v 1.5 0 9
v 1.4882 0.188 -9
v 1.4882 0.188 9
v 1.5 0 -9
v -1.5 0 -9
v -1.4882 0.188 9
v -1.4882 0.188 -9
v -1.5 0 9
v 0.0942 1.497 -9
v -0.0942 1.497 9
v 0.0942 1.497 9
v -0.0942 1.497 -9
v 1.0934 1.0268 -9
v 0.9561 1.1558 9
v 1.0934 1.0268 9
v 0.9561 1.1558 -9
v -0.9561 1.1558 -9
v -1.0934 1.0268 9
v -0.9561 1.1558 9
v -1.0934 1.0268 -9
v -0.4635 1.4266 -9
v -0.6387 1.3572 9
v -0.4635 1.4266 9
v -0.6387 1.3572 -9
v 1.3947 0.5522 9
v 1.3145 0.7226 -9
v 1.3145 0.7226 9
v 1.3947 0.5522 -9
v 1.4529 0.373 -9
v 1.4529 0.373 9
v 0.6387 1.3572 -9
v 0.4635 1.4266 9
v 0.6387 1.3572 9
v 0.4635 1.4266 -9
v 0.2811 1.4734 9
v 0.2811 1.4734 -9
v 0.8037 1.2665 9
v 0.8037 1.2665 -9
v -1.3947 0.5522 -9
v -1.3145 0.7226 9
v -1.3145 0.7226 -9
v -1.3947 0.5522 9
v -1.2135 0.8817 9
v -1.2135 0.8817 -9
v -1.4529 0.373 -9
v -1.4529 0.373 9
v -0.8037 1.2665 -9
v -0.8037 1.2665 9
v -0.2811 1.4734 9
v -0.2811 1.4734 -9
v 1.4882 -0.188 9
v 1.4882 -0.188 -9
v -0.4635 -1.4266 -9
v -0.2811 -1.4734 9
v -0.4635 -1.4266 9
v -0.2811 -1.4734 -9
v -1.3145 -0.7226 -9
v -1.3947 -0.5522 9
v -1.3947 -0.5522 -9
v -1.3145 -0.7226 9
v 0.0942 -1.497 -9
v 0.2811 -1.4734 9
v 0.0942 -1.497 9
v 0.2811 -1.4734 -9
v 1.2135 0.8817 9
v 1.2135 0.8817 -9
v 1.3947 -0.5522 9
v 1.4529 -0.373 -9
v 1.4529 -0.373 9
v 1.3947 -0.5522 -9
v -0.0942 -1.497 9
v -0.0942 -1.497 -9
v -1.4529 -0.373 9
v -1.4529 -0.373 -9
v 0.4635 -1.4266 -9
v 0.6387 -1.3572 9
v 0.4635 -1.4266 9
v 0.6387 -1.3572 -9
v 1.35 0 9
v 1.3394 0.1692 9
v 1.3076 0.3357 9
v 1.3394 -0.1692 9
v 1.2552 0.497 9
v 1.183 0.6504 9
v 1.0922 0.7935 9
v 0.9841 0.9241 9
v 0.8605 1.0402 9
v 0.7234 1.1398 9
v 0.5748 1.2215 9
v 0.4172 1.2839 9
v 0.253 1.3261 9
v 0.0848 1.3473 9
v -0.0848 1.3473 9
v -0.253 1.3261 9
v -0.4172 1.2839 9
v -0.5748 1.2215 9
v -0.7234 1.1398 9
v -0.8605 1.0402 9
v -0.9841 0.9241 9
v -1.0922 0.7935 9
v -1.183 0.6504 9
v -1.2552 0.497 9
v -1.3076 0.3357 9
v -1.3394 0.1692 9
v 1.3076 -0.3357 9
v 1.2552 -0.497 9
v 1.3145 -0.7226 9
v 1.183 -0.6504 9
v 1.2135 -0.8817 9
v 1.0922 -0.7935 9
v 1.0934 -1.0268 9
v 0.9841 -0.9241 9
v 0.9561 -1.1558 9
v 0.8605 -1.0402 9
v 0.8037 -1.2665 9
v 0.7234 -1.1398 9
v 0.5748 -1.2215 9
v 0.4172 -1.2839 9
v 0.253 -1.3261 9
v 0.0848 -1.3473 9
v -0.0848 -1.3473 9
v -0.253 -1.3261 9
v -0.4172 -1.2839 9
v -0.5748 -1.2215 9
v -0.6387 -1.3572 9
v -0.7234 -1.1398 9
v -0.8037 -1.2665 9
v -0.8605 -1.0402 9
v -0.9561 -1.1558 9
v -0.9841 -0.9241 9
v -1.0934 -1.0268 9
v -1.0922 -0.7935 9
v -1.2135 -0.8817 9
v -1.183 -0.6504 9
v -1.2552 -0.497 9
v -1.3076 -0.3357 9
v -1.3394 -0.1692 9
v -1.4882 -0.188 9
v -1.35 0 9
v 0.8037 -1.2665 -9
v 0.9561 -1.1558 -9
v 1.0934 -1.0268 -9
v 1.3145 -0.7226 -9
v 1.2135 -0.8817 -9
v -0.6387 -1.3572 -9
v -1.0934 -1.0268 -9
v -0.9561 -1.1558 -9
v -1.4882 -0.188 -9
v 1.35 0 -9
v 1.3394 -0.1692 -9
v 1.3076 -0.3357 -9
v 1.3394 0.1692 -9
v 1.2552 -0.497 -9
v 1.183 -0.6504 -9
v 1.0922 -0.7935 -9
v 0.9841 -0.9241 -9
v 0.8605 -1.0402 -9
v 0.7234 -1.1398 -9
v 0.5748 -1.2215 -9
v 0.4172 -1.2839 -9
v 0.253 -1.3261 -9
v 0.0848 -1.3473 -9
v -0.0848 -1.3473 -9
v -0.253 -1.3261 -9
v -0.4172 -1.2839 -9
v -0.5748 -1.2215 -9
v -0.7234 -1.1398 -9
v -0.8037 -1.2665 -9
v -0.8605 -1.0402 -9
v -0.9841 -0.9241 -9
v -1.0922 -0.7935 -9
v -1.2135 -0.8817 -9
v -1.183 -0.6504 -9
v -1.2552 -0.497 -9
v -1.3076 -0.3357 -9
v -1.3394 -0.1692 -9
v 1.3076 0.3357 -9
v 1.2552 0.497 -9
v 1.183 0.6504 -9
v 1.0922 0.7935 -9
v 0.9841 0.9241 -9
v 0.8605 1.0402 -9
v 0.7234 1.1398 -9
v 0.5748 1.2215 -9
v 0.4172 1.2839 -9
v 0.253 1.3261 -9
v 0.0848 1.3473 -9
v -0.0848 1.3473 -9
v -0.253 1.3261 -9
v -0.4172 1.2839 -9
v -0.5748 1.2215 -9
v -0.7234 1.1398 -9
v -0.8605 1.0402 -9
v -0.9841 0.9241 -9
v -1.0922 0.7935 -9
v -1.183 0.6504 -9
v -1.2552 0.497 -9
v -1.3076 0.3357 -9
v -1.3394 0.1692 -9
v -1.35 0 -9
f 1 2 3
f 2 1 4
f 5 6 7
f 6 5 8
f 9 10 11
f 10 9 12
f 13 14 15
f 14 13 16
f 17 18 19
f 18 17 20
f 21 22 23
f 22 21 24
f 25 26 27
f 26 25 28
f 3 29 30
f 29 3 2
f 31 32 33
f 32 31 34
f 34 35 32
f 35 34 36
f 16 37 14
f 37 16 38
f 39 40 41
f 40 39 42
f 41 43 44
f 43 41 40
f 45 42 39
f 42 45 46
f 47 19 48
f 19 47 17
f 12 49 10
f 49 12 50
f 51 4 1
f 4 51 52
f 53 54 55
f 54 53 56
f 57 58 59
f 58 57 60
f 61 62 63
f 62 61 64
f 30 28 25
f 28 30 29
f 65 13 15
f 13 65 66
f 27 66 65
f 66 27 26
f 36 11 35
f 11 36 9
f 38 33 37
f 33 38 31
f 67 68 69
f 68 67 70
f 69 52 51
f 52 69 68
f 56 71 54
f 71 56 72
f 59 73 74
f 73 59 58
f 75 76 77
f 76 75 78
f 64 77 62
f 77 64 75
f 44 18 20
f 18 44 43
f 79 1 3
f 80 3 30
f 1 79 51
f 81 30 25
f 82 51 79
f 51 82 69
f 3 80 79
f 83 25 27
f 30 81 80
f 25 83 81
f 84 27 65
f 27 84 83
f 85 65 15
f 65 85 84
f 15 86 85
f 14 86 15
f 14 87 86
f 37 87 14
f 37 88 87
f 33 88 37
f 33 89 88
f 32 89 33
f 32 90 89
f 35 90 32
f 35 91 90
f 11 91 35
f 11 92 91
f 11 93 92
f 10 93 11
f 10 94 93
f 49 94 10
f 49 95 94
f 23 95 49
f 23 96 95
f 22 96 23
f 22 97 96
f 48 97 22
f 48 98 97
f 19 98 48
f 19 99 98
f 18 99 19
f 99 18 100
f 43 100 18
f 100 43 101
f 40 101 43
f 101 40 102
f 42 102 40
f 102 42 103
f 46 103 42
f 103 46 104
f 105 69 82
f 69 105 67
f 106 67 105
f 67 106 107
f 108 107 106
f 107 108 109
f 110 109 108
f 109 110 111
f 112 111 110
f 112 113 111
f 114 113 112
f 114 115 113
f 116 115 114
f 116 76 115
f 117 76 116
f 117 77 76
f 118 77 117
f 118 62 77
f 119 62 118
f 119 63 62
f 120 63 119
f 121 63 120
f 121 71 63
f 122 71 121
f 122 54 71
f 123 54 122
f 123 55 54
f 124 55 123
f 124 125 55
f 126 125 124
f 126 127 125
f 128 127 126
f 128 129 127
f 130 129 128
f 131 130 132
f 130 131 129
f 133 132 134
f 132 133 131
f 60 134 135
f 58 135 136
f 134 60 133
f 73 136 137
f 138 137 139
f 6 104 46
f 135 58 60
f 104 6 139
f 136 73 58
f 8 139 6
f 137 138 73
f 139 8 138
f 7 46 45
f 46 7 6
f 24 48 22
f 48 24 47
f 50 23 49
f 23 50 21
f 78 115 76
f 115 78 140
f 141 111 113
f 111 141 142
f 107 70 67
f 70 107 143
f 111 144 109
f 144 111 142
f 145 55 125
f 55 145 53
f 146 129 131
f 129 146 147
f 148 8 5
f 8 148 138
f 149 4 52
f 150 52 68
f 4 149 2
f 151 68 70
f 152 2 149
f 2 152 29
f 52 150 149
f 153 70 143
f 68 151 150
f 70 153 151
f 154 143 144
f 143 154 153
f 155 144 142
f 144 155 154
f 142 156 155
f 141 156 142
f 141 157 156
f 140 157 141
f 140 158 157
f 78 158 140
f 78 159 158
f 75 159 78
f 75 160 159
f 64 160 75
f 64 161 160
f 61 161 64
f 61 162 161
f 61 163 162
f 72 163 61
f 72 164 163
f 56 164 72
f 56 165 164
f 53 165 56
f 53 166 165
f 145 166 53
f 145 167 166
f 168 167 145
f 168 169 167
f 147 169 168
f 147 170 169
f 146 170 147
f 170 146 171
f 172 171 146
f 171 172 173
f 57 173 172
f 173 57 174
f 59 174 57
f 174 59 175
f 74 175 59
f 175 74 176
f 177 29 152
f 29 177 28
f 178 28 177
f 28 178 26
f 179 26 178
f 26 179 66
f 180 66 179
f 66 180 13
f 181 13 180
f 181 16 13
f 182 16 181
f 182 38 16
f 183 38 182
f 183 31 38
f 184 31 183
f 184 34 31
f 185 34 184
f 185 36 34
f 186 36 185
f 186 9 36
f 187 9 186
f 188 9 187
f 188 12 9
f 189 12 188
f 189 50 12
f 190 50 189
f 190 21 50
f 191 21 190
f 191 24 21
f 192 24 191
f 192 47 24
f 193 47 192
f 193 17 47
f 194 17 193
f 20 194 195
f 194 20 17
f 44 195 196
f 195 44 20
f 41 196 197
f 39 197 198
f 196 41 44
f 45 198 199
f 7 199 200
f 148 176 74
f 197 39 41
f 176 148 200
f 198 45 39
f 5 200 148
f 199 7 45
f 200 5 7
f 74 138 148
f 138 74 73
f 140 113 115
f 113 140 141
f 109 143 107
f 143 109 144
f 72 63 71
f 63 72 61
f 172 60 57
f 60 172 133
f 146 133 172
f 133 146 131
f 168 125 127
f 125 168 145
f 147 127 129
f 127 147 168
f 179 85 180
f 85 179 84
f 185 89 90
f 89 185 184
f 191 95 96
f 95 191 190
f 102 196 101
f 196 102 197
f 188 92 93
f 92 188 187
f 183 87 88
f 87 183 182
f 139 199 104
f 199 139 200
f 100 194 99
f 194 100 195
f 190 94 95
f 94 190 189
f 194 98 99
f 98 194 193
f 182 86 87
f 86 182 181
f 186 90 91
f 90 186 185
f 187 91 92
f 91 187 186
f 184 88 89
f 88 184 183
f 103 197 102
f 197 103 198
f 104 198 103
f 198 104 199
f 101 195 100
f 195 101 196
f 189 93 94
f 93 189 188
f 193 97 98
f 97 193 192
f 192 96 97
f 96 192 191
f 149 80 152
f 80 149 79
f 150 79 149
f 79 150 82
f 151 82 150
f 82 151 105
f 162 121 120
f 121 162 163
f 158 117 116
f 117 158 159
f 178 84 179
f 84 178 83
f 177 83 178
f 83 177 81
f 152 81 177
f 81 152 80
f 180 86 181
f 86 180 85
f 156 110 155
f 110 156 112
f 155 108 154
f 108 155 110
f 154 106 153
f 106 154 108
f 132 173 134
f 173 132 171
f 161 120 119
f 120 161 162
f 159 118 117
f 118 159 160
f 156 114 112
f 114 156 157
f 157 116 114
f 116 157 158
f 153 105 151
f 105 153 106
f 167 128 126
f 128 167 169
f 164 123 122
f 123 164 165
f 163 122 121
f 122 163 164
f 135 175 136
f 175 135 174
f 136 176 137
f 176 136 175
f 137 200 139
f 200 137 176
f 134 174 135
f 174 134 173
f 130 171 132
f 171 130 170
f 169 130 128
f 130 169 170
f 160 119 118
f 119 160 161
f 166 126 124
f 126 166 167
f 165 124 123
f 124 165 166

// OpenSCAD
$fn = 50;


difference() {
	union() {
		translate(v = [0, 0, -9.0000000000]) {
			cylinder(h = 18, r = 1.5000000000);
		}
	}
	union() {
		translate(v = [0, 0, -100.0000000000]) {
			cylinder(h = 200, r = 1.3500000000);
		}
	}
}
